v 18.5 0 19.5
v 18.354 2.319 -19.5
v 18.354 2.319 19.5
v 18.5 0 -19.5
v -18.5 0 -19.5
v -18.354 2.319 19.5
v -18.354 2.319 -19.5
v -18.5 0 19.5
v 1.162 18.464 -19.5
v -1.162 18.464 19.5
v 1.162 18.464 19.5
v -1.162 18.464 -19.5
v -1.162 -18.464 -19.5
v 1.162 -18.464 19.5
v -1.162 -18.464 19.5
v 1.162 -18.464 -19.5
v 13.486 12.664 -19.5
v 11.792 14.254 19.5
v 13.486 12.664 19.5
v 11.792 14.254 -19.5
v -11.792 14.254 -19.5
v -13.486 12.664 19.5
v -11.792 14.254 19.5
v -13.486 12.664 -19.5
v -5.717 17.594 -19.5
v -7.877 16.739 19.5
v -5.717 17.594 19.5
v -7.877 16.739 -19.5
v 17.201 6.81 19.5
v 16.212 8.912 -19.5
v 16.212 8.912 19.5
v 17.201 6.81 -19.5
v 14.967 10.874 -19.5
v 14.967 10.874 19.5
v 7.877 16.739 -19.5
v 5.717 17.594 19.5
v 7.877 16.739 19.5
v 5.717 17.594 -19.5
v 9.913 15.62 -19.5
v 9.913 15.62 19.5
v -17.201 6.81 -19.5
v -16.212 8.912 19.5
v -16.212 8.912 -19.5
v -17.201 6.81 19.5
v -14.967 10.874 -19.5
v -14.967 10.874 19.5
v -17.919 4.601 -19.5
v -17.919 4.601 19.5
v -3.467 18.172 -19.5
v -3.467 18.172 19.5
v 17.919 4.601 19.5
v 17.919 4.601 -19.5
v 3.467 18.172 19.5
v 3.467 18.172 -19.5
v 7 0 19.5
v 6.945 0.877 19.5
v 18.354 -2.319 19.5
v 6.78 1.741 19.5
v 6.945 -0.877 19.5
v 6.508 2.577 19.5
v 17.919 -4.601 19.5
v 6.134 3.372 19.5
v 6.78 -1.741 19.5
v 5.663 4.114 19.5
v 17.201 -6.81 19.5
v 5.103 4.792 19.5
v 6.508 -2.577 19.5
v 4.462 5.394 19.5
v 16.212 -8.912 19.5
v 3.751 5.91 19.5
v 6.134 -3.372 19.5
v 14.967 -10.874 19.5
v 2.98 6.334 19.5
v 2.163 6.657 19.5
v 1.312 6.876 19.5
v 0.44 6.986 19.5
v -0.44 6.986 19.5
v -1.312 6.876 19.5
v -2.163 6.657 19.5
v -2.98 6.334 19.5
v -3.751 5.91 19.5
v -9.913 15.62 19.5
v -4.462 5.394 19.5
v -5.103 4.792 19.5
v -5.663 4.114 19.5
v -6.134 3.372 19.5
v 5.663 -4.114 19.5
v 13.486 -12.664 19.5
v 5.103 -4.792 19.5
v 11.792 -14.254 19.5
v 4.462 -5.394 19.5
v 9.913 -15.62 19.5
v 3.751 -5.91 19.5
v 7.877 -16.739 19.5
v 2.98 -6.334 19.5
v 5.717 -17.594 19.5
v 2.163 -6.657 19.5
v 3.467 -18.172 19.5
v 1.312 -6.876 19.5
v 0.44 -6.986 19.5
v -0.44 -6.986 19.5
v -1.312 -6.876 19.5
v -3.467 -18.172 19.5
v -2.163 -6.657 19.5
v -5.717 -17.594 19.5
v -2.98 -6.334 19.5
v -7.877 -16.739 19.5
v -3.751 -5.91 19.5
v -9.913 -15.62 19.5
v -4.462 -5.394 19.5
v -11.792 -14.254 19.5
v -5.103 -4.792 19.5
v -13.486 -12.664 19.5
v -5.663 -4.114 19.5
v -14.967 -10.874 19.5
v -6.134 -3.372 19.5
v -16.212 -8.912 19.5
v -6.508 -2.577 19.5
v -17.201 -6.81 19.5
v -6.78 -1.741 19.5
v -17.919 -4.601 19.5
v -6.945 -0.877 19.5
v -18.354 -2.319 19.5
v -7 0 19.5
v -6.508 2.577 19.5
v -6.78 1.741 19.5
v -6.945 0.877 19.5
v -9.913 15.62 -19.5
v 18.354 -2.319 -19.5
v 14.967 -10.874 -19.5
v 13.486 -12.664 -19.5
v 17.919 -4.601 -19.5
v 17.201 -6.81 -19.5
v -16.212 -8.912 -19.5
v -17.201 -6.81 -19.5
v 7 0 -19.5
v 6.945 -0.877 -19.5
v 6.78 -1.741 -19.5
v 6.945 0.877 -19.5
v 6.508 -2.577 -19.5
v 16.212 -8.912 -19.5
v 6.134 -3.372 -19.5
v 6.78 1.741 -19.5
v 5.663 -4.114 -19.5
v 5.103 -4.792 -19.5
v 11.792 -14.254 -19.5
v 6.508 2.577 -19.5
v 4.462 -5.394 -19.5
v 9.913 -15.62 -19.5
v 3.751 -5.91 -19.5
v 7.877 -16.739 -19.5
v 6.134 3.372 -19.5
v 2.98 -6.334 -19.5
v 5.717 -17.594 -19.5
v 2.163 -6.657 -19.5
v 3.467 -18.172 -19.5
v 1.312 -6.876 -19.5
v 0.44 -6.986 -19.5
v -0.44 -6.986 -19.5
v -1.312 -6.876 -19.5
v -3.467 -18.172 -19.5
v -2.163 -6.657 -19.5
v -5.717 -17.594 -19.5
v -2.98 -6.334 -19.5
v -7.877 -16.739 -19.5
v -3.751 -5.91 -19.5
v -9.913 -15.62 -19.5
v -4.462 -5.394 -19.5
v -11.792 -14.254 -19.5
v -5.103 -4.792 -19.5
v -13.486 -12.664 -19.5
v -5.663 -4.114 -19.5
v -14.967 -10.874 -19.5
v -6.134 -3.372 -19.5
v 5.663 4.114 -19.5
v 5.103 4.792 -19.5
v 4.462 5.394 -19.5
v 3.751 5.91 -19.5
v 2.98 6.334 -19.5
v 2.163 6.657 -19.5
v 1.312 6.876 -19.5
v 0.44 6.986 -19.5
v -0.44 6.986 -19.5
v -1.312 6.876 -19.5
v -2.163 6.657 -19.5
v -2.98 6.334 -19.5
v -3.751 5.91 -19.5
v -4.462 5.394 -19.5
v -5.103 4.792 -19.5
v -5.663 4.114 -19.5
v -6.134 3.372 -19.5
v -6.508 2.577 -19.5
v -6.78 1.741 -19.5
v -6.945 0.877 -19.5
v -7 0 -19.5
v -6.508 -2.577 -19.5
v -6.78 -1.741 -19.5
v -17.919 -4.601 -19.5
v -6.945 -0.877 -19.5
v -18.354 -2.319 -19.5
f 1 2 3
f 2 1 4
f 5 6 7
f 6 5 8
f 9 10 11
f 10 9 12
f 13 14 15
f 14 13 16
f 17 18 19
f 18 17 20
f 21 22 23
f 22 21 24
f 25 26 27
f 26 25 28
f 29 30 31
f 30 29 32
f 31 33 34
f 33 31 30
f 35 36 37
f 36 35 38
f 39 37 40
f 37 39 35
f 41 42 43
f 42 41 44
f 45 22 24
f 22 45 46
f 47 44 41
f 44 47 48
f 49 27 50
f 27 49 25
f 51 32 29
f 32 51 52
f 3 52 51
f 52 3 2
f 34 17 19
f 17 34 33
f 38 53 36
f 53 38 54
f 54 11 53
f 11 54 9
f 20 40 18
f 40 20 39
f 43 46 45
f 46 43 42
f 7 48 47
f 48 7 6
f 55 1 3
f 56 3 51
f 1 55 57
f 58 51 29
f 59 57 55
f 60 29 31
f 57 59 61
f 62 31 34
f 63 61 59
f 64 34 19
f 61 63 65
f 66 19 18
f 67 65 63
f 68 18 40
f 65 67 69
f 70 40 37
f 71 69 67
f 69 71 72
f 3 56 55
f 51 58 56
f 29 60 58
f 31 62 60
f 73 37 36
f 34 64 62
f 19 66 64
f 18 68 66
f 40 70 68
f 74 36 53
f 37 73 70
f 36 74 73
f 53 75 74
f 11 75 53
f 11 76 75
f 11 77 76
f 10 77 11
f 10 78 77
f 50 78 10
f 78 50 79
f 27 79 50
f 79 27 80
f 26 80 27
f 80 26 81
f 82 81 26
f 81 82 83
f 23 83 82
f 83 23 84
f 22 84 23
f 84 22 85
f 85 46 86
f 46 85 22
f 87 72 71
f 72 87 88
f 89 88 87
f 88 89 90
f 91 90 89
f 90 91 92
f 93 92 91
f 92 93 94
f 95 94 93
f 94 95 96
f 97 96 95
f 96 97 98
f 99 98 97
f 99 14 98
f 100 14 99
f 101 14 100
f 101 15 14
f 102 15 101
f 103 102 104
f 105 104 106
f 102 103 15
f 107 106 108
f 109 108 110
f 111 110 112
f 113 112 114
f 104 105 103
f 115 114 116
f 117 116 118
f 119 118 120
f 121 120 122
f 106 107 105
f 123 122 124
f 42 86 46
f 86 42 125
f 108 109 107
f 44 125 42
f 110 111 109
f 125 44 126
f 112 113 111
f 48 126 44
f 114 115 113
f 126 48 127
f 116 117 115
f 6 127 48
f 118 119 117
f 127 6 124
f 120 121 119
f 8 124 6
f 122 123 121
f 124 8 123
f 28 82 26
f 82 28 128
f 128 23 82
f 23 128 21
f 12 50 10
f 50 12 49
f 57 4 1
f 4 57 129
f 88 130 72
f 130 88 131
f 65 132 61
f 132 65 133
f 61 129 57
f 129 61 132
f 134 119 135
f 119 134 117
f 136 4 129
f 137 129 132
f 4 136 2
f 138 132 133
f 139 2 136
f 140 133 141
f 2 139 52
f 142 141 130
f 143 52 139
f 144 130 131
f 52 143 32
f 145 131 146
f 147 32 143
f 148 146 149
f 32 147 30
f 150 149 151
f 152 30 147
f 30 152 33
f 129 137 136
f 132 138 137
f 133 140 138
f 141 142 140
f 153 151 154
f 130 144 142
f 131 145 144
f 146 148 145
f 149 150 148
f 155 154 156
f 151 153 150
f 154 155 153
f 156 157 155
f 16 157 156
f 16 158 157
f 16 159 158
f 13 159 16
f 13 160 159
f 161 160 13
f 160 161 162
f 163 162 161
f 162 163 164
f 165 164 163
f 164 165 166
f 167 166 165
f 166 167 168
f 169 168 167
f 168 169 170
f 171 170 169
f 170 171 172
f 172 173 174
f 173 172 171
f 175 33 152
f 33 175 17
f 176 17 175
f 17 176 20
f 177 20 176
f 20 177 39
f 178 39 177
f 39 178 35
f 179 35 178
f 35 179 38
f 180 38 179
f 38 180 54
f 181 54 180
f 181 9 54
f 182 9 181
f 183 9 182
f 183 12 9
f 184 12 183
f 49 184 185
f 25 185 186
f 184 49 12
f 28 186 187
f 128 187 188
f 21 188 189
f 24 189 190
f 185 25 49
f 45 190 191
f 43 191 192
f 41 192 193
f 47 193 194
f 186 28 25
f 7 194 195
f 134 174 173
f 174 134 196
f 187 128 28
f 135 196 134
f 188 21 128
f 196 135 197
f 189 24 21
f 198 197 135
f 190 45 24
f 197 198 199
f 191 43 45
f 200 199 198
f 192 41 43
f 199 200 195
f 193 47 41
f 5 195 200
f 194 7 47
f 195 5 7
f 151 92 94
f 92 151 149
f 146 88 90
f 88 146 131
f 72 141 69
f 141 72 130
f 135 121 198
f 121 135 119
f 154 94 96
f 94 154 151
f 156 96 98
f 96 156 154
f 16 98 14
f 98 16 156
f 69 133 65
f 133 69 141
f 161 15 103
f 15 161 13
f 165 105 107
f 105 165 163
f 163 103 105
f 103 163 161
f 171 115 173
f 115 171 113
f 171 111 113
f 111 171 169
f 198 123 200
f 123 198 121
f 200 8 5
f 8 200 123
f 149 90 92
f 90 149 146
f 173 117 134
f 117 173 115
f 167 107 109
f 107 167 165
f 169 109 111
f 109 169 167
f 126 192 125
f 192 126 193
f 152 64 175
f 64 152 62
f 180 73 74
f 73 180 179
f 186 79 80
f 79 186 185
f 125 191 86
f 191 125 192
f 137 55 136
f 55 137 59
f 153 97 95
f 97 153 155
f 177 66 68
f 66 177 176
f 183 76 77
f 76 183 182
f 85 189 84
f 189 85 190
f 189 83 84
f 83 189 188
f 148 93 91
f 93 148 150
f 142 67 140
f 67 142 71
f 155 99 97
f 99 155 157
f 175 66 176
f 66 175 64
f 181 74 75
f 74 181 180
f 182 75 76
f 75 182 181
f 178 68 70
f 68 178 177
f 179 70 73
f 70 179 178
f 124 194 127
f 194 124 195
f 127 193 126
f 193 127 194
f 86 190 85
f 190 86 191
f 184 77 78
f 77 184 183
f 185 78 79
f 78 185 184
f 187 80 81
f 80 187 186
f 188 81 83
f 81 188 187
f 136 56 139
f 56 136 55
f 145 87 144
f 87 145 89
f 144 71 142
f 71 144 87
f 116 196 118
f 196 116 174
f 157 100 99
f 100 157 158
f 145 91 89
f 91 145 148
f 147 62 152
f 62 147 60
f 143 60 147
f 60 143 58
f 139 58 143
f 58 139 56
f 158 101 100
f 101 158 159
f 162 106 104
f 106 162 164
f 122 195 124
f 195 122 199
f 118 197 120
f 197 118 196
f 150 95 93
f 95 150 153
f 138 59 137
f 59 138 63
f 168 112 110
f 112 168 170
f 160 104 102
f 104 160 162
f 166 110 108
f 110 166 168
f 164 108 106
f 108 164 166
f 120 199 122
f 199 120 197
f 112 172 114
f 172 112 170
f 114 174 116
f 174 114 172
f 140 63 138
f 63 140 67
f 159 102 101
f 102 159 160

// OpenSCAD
$fn = 50;


difference() {
	union() {
		translate(v = [0, 0, -19.5000000000]) {
			cylinder(h = 39, r = 18.5000000000);
		}
	}
	union() {
		translate(v = [0, 0, -100.0000000000]) {
			cylinder(h = 200, r = 7);
		}
	}
}
